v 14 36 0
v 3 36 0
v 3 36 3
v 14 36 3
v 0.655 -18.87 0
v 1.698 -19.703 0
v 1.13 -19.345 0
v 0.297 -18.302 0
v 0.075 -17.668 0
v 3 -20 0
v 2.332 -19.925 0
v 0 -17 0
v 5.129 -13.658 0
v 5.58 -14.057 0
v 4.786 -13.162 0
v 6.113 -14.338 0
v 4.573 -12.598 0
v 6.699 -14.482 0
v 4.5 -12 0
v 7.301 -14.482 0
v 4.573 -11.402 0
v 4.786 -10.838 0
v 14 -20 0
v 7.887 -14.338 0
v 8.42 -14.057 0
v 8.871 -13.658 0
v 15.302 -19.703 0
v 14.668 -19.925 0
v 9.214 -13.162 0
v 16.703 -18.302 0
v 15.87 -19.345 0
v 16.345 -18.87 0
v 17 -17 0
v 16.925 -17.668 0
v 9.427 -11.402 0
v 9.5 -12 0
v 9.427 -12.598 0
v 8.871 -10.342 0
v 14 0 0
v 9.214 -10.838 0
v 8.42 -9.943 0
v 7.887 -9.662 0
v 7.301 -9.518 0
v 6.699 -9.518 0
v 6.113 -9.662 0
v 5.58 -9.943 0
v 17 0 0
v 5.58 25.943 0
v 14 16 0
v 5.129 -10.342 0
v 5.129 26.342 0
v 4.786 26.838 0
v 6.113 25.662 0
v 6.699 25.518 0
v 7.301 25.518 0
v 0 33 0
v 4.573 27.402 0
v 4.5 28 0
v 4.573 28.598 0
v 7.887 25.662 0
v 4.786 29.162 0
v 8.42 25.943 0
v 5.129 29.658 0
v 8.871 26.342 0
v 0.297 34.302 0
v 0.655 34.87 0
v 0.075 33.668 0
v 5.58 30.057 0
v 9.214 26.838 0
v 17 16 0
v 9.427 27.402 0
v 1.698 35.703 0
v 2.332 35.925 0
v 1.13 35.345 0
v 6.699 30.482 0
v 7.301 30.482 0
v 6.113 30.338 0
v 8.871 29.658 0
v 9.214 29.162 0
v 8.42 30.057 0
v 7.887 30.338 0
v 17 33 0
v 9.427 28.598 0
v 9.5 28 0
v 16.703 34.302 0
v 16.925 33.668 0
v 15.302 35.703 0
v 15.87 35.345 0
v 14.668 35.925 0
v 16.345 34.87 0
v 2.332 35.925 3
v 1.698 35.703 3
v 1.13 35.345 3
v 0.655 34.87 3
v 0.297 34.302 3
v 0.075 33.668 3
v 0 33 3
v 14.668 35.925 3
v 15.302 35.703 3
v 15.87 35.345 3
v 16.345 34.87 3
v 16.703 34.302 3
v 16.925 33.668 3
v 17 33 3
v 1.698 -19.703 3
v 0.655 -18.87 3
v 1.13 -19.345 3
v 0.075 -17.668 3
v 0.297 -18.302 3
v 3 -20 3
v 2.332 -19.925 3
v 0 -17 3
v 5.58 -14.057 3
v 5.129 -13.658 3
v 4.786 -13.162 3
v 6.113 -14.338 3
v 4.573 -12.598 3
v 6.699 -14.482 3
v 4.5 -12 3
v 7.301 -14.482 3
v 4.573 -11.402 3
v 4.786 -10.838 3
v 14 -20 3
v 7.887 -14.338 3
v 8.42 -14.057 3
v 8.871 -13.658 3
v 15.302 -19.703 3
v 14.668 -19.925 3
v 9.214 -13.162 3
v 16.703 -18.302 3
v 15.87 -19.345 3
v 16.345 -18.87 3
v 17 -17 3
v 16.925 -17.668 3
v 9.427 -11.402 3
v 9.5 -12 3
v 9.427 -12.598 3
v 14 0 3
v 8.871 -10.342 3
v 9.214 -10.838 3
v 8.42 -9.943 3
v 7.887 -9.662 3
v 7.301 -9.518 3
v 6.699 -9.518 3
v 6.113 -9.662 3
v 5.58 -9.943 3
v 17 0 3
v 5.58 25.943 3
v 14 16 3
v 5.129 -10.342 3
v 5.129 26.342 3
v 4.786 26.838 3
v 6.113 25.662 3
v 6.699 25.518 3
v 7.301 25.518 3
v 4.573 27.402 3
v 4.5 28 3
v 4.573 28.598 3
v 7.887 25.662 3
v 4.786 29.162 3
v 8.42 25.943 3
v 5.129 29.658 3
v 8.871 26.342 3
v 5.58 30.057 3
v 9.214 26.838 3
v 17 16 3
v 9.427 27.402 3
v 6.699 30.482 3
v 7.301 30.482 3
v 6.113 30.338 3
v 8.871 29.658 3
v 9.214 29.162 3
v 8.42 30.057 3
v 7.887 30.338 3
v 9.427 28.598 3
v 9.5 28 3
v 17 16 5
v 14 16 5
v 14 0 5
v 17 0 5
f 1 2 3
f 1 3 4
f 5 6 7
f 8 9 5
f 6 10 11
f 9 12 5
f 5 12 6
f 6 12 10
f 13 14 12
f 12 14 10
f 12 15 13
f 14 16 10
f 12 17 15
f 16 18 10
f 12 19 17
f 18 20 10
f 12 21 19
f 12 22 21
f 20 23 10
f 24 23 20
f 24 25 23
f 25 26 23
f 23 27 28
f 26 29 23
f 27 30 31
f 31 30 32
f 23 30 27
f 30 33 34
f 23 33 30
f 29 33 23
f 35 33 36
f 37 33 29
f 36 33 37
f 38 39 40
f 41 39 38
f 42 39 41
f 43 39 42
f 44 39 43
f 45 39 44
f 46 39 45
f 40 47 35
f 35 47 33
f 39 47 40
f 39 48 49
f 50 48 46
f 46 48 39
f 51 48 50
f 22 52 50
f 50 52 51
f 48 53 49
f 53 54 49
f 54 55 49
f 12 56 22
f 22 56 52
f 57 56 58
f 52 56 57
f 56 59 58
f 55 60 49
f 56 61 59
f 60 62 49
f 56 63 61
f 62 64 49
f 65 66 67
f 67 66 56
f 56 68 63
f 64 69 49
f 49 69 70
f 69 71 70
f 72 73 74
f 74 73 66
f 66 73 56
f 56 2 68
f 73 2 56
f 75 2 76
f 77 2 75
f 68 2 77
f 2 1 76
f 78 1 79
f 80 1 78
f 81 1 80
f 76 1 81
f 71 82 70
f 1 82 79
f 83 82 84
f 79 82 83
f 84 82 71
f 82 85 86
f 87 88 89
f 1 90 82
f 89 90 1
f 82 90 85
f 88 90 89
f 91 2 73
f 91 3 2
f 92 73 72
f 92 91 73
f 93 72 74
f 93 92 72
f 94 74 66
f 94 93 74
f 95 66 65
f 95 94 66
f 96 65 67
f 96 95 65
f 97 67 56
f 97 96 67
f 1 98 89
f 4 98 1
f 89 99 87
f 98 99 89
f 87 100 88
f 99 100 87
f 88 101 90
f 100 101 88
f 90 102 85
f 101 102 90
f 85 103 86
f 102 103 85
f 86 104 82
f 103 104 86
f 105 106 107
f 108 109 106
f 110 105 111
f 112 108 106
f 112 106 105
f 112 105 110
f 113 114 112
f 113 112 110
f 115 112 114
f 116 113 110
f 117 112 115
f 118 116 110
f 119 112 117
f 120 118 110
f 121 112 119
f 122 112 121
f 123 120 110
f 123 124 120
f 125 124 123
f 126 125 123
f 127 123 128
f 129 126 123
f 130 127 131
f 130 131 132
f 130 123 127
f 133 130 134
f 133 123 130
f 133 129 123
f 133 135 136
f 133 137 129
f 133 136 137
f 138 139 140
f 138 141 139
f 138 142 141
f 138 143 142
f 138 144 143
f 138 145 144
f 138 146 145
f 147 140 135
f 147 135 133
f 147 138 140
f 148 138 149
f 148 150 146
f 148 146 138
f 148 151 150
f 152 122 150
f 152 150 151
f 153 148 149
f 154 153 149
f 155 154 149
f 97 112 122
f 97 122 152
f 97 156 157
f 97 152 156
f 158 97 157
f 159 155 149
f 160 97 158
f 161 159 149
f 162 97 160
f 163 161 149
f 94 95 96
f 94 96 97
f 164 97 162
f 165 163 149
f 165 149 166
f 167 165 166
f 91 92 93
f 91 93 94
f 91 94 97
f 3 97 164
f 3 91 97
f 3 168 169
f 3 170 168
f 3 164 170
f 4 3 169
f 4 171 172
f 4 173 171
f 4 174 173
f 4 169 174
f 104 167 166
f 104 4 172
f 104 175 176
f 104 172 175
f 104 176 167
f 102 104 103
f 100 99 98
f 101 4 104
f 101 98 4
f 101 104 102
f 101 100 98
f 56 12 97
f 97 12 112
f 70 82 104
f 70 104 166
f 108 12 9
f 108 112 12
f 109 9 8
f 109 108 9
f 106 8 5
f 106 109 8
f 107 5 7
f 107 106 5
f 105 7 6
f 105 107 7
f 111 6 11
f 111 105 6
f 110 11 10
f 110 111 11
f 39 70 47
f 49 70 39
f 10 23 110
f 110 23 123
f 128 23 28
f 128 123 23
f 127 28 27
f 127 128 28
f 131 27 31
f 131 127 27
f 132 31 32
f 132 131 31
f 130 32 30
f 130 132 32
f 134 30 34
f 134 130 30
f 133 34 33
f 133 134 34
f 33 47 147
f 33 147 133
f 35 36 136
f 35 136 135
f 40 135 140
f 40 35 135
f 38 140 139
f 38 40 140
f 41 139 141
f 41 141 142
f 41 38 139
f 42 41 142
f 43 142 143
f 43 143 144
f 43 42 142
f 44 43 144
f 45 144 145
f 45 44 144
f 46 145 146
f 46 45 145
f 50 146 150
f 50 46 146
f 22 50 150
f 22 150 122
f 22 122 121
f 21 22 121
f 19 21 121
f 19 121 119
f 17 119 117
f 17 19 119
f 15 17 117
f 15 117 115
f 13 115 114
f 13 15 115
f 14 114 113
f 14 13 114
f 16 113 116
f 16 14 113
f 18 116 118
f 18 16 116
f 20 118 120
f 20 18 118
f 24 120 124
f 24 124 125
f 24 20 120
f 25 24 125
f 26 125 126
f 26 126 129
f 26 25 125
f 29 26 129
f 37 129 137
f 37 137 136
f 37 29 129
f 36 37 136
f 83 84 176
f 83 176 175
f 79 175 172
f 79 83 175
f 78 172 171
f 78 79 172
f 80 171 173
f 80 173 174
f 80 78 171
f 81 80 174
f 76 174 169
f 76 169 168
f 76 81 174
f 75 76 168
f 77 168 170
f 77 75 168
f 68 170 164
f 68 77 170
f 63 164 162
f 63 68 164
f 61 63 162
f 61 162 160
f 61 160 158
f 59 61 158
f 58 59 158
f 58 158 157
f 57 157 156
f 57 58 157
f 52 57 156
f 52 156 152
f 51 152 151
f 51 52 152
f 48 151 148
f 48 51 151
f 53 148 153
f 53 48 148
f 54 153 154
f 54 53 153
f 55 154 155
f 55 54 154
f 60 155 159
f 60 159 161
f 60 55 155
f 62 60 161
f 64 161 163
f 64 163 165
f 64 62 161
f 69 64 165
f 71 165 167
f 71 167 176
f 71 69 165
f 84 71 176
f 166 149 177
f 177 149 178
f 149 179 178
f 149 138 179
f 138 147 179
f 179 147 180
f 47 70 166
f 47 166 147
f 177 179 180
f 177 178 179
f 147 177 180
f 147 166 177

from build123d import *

# Parameters (mm, degrees)
SKETCH_W     = 17
SKETCH_H     = 56
SKETCH_R     = 2.5
PAD_DEPTH    = 3
SKETCH001_W  = 3
SKETCH001_H  = 16
PAD001_DEPTH = 5
FILLET_R     = 3


with BuildPart() as part:
    # Sketch → Pad (new body)
    with BuildSketch(Plane.XY):
        with Locations((8.5, 8)):
            Rectangle(SKETCH_W, SKETCH_H)
        with Locations((7, 28)):
            Circle(SKETCH_R, mode=Mode.SUBTRACT)
        with Locations((7, -12)):
            Circle(SKETCH_R, mode=Mode.SUBTRACT)
    extrude(amount=PAD_DEPTH)

    # Sketch001 → Pad001 (join)
    with BuildSketch(Plane.XY):
        with Locations((15.5, 8)):
            Rectangle(SKETCH001_W, SKETCH001_H)
    extrude(amount=PAD001_DEPTH)

    # Fillet
    fillet_edges = [part.edges().sort_by_distance(p)[0] for p in [
        (17, -20, 1.5),
        (0, -20, 1.5),
        (17, 36, 1.5),
        (0, 36, 1.5),
    ]]
    fillet(fillet_edges, radius=FILLET_R)


solid = part.part
